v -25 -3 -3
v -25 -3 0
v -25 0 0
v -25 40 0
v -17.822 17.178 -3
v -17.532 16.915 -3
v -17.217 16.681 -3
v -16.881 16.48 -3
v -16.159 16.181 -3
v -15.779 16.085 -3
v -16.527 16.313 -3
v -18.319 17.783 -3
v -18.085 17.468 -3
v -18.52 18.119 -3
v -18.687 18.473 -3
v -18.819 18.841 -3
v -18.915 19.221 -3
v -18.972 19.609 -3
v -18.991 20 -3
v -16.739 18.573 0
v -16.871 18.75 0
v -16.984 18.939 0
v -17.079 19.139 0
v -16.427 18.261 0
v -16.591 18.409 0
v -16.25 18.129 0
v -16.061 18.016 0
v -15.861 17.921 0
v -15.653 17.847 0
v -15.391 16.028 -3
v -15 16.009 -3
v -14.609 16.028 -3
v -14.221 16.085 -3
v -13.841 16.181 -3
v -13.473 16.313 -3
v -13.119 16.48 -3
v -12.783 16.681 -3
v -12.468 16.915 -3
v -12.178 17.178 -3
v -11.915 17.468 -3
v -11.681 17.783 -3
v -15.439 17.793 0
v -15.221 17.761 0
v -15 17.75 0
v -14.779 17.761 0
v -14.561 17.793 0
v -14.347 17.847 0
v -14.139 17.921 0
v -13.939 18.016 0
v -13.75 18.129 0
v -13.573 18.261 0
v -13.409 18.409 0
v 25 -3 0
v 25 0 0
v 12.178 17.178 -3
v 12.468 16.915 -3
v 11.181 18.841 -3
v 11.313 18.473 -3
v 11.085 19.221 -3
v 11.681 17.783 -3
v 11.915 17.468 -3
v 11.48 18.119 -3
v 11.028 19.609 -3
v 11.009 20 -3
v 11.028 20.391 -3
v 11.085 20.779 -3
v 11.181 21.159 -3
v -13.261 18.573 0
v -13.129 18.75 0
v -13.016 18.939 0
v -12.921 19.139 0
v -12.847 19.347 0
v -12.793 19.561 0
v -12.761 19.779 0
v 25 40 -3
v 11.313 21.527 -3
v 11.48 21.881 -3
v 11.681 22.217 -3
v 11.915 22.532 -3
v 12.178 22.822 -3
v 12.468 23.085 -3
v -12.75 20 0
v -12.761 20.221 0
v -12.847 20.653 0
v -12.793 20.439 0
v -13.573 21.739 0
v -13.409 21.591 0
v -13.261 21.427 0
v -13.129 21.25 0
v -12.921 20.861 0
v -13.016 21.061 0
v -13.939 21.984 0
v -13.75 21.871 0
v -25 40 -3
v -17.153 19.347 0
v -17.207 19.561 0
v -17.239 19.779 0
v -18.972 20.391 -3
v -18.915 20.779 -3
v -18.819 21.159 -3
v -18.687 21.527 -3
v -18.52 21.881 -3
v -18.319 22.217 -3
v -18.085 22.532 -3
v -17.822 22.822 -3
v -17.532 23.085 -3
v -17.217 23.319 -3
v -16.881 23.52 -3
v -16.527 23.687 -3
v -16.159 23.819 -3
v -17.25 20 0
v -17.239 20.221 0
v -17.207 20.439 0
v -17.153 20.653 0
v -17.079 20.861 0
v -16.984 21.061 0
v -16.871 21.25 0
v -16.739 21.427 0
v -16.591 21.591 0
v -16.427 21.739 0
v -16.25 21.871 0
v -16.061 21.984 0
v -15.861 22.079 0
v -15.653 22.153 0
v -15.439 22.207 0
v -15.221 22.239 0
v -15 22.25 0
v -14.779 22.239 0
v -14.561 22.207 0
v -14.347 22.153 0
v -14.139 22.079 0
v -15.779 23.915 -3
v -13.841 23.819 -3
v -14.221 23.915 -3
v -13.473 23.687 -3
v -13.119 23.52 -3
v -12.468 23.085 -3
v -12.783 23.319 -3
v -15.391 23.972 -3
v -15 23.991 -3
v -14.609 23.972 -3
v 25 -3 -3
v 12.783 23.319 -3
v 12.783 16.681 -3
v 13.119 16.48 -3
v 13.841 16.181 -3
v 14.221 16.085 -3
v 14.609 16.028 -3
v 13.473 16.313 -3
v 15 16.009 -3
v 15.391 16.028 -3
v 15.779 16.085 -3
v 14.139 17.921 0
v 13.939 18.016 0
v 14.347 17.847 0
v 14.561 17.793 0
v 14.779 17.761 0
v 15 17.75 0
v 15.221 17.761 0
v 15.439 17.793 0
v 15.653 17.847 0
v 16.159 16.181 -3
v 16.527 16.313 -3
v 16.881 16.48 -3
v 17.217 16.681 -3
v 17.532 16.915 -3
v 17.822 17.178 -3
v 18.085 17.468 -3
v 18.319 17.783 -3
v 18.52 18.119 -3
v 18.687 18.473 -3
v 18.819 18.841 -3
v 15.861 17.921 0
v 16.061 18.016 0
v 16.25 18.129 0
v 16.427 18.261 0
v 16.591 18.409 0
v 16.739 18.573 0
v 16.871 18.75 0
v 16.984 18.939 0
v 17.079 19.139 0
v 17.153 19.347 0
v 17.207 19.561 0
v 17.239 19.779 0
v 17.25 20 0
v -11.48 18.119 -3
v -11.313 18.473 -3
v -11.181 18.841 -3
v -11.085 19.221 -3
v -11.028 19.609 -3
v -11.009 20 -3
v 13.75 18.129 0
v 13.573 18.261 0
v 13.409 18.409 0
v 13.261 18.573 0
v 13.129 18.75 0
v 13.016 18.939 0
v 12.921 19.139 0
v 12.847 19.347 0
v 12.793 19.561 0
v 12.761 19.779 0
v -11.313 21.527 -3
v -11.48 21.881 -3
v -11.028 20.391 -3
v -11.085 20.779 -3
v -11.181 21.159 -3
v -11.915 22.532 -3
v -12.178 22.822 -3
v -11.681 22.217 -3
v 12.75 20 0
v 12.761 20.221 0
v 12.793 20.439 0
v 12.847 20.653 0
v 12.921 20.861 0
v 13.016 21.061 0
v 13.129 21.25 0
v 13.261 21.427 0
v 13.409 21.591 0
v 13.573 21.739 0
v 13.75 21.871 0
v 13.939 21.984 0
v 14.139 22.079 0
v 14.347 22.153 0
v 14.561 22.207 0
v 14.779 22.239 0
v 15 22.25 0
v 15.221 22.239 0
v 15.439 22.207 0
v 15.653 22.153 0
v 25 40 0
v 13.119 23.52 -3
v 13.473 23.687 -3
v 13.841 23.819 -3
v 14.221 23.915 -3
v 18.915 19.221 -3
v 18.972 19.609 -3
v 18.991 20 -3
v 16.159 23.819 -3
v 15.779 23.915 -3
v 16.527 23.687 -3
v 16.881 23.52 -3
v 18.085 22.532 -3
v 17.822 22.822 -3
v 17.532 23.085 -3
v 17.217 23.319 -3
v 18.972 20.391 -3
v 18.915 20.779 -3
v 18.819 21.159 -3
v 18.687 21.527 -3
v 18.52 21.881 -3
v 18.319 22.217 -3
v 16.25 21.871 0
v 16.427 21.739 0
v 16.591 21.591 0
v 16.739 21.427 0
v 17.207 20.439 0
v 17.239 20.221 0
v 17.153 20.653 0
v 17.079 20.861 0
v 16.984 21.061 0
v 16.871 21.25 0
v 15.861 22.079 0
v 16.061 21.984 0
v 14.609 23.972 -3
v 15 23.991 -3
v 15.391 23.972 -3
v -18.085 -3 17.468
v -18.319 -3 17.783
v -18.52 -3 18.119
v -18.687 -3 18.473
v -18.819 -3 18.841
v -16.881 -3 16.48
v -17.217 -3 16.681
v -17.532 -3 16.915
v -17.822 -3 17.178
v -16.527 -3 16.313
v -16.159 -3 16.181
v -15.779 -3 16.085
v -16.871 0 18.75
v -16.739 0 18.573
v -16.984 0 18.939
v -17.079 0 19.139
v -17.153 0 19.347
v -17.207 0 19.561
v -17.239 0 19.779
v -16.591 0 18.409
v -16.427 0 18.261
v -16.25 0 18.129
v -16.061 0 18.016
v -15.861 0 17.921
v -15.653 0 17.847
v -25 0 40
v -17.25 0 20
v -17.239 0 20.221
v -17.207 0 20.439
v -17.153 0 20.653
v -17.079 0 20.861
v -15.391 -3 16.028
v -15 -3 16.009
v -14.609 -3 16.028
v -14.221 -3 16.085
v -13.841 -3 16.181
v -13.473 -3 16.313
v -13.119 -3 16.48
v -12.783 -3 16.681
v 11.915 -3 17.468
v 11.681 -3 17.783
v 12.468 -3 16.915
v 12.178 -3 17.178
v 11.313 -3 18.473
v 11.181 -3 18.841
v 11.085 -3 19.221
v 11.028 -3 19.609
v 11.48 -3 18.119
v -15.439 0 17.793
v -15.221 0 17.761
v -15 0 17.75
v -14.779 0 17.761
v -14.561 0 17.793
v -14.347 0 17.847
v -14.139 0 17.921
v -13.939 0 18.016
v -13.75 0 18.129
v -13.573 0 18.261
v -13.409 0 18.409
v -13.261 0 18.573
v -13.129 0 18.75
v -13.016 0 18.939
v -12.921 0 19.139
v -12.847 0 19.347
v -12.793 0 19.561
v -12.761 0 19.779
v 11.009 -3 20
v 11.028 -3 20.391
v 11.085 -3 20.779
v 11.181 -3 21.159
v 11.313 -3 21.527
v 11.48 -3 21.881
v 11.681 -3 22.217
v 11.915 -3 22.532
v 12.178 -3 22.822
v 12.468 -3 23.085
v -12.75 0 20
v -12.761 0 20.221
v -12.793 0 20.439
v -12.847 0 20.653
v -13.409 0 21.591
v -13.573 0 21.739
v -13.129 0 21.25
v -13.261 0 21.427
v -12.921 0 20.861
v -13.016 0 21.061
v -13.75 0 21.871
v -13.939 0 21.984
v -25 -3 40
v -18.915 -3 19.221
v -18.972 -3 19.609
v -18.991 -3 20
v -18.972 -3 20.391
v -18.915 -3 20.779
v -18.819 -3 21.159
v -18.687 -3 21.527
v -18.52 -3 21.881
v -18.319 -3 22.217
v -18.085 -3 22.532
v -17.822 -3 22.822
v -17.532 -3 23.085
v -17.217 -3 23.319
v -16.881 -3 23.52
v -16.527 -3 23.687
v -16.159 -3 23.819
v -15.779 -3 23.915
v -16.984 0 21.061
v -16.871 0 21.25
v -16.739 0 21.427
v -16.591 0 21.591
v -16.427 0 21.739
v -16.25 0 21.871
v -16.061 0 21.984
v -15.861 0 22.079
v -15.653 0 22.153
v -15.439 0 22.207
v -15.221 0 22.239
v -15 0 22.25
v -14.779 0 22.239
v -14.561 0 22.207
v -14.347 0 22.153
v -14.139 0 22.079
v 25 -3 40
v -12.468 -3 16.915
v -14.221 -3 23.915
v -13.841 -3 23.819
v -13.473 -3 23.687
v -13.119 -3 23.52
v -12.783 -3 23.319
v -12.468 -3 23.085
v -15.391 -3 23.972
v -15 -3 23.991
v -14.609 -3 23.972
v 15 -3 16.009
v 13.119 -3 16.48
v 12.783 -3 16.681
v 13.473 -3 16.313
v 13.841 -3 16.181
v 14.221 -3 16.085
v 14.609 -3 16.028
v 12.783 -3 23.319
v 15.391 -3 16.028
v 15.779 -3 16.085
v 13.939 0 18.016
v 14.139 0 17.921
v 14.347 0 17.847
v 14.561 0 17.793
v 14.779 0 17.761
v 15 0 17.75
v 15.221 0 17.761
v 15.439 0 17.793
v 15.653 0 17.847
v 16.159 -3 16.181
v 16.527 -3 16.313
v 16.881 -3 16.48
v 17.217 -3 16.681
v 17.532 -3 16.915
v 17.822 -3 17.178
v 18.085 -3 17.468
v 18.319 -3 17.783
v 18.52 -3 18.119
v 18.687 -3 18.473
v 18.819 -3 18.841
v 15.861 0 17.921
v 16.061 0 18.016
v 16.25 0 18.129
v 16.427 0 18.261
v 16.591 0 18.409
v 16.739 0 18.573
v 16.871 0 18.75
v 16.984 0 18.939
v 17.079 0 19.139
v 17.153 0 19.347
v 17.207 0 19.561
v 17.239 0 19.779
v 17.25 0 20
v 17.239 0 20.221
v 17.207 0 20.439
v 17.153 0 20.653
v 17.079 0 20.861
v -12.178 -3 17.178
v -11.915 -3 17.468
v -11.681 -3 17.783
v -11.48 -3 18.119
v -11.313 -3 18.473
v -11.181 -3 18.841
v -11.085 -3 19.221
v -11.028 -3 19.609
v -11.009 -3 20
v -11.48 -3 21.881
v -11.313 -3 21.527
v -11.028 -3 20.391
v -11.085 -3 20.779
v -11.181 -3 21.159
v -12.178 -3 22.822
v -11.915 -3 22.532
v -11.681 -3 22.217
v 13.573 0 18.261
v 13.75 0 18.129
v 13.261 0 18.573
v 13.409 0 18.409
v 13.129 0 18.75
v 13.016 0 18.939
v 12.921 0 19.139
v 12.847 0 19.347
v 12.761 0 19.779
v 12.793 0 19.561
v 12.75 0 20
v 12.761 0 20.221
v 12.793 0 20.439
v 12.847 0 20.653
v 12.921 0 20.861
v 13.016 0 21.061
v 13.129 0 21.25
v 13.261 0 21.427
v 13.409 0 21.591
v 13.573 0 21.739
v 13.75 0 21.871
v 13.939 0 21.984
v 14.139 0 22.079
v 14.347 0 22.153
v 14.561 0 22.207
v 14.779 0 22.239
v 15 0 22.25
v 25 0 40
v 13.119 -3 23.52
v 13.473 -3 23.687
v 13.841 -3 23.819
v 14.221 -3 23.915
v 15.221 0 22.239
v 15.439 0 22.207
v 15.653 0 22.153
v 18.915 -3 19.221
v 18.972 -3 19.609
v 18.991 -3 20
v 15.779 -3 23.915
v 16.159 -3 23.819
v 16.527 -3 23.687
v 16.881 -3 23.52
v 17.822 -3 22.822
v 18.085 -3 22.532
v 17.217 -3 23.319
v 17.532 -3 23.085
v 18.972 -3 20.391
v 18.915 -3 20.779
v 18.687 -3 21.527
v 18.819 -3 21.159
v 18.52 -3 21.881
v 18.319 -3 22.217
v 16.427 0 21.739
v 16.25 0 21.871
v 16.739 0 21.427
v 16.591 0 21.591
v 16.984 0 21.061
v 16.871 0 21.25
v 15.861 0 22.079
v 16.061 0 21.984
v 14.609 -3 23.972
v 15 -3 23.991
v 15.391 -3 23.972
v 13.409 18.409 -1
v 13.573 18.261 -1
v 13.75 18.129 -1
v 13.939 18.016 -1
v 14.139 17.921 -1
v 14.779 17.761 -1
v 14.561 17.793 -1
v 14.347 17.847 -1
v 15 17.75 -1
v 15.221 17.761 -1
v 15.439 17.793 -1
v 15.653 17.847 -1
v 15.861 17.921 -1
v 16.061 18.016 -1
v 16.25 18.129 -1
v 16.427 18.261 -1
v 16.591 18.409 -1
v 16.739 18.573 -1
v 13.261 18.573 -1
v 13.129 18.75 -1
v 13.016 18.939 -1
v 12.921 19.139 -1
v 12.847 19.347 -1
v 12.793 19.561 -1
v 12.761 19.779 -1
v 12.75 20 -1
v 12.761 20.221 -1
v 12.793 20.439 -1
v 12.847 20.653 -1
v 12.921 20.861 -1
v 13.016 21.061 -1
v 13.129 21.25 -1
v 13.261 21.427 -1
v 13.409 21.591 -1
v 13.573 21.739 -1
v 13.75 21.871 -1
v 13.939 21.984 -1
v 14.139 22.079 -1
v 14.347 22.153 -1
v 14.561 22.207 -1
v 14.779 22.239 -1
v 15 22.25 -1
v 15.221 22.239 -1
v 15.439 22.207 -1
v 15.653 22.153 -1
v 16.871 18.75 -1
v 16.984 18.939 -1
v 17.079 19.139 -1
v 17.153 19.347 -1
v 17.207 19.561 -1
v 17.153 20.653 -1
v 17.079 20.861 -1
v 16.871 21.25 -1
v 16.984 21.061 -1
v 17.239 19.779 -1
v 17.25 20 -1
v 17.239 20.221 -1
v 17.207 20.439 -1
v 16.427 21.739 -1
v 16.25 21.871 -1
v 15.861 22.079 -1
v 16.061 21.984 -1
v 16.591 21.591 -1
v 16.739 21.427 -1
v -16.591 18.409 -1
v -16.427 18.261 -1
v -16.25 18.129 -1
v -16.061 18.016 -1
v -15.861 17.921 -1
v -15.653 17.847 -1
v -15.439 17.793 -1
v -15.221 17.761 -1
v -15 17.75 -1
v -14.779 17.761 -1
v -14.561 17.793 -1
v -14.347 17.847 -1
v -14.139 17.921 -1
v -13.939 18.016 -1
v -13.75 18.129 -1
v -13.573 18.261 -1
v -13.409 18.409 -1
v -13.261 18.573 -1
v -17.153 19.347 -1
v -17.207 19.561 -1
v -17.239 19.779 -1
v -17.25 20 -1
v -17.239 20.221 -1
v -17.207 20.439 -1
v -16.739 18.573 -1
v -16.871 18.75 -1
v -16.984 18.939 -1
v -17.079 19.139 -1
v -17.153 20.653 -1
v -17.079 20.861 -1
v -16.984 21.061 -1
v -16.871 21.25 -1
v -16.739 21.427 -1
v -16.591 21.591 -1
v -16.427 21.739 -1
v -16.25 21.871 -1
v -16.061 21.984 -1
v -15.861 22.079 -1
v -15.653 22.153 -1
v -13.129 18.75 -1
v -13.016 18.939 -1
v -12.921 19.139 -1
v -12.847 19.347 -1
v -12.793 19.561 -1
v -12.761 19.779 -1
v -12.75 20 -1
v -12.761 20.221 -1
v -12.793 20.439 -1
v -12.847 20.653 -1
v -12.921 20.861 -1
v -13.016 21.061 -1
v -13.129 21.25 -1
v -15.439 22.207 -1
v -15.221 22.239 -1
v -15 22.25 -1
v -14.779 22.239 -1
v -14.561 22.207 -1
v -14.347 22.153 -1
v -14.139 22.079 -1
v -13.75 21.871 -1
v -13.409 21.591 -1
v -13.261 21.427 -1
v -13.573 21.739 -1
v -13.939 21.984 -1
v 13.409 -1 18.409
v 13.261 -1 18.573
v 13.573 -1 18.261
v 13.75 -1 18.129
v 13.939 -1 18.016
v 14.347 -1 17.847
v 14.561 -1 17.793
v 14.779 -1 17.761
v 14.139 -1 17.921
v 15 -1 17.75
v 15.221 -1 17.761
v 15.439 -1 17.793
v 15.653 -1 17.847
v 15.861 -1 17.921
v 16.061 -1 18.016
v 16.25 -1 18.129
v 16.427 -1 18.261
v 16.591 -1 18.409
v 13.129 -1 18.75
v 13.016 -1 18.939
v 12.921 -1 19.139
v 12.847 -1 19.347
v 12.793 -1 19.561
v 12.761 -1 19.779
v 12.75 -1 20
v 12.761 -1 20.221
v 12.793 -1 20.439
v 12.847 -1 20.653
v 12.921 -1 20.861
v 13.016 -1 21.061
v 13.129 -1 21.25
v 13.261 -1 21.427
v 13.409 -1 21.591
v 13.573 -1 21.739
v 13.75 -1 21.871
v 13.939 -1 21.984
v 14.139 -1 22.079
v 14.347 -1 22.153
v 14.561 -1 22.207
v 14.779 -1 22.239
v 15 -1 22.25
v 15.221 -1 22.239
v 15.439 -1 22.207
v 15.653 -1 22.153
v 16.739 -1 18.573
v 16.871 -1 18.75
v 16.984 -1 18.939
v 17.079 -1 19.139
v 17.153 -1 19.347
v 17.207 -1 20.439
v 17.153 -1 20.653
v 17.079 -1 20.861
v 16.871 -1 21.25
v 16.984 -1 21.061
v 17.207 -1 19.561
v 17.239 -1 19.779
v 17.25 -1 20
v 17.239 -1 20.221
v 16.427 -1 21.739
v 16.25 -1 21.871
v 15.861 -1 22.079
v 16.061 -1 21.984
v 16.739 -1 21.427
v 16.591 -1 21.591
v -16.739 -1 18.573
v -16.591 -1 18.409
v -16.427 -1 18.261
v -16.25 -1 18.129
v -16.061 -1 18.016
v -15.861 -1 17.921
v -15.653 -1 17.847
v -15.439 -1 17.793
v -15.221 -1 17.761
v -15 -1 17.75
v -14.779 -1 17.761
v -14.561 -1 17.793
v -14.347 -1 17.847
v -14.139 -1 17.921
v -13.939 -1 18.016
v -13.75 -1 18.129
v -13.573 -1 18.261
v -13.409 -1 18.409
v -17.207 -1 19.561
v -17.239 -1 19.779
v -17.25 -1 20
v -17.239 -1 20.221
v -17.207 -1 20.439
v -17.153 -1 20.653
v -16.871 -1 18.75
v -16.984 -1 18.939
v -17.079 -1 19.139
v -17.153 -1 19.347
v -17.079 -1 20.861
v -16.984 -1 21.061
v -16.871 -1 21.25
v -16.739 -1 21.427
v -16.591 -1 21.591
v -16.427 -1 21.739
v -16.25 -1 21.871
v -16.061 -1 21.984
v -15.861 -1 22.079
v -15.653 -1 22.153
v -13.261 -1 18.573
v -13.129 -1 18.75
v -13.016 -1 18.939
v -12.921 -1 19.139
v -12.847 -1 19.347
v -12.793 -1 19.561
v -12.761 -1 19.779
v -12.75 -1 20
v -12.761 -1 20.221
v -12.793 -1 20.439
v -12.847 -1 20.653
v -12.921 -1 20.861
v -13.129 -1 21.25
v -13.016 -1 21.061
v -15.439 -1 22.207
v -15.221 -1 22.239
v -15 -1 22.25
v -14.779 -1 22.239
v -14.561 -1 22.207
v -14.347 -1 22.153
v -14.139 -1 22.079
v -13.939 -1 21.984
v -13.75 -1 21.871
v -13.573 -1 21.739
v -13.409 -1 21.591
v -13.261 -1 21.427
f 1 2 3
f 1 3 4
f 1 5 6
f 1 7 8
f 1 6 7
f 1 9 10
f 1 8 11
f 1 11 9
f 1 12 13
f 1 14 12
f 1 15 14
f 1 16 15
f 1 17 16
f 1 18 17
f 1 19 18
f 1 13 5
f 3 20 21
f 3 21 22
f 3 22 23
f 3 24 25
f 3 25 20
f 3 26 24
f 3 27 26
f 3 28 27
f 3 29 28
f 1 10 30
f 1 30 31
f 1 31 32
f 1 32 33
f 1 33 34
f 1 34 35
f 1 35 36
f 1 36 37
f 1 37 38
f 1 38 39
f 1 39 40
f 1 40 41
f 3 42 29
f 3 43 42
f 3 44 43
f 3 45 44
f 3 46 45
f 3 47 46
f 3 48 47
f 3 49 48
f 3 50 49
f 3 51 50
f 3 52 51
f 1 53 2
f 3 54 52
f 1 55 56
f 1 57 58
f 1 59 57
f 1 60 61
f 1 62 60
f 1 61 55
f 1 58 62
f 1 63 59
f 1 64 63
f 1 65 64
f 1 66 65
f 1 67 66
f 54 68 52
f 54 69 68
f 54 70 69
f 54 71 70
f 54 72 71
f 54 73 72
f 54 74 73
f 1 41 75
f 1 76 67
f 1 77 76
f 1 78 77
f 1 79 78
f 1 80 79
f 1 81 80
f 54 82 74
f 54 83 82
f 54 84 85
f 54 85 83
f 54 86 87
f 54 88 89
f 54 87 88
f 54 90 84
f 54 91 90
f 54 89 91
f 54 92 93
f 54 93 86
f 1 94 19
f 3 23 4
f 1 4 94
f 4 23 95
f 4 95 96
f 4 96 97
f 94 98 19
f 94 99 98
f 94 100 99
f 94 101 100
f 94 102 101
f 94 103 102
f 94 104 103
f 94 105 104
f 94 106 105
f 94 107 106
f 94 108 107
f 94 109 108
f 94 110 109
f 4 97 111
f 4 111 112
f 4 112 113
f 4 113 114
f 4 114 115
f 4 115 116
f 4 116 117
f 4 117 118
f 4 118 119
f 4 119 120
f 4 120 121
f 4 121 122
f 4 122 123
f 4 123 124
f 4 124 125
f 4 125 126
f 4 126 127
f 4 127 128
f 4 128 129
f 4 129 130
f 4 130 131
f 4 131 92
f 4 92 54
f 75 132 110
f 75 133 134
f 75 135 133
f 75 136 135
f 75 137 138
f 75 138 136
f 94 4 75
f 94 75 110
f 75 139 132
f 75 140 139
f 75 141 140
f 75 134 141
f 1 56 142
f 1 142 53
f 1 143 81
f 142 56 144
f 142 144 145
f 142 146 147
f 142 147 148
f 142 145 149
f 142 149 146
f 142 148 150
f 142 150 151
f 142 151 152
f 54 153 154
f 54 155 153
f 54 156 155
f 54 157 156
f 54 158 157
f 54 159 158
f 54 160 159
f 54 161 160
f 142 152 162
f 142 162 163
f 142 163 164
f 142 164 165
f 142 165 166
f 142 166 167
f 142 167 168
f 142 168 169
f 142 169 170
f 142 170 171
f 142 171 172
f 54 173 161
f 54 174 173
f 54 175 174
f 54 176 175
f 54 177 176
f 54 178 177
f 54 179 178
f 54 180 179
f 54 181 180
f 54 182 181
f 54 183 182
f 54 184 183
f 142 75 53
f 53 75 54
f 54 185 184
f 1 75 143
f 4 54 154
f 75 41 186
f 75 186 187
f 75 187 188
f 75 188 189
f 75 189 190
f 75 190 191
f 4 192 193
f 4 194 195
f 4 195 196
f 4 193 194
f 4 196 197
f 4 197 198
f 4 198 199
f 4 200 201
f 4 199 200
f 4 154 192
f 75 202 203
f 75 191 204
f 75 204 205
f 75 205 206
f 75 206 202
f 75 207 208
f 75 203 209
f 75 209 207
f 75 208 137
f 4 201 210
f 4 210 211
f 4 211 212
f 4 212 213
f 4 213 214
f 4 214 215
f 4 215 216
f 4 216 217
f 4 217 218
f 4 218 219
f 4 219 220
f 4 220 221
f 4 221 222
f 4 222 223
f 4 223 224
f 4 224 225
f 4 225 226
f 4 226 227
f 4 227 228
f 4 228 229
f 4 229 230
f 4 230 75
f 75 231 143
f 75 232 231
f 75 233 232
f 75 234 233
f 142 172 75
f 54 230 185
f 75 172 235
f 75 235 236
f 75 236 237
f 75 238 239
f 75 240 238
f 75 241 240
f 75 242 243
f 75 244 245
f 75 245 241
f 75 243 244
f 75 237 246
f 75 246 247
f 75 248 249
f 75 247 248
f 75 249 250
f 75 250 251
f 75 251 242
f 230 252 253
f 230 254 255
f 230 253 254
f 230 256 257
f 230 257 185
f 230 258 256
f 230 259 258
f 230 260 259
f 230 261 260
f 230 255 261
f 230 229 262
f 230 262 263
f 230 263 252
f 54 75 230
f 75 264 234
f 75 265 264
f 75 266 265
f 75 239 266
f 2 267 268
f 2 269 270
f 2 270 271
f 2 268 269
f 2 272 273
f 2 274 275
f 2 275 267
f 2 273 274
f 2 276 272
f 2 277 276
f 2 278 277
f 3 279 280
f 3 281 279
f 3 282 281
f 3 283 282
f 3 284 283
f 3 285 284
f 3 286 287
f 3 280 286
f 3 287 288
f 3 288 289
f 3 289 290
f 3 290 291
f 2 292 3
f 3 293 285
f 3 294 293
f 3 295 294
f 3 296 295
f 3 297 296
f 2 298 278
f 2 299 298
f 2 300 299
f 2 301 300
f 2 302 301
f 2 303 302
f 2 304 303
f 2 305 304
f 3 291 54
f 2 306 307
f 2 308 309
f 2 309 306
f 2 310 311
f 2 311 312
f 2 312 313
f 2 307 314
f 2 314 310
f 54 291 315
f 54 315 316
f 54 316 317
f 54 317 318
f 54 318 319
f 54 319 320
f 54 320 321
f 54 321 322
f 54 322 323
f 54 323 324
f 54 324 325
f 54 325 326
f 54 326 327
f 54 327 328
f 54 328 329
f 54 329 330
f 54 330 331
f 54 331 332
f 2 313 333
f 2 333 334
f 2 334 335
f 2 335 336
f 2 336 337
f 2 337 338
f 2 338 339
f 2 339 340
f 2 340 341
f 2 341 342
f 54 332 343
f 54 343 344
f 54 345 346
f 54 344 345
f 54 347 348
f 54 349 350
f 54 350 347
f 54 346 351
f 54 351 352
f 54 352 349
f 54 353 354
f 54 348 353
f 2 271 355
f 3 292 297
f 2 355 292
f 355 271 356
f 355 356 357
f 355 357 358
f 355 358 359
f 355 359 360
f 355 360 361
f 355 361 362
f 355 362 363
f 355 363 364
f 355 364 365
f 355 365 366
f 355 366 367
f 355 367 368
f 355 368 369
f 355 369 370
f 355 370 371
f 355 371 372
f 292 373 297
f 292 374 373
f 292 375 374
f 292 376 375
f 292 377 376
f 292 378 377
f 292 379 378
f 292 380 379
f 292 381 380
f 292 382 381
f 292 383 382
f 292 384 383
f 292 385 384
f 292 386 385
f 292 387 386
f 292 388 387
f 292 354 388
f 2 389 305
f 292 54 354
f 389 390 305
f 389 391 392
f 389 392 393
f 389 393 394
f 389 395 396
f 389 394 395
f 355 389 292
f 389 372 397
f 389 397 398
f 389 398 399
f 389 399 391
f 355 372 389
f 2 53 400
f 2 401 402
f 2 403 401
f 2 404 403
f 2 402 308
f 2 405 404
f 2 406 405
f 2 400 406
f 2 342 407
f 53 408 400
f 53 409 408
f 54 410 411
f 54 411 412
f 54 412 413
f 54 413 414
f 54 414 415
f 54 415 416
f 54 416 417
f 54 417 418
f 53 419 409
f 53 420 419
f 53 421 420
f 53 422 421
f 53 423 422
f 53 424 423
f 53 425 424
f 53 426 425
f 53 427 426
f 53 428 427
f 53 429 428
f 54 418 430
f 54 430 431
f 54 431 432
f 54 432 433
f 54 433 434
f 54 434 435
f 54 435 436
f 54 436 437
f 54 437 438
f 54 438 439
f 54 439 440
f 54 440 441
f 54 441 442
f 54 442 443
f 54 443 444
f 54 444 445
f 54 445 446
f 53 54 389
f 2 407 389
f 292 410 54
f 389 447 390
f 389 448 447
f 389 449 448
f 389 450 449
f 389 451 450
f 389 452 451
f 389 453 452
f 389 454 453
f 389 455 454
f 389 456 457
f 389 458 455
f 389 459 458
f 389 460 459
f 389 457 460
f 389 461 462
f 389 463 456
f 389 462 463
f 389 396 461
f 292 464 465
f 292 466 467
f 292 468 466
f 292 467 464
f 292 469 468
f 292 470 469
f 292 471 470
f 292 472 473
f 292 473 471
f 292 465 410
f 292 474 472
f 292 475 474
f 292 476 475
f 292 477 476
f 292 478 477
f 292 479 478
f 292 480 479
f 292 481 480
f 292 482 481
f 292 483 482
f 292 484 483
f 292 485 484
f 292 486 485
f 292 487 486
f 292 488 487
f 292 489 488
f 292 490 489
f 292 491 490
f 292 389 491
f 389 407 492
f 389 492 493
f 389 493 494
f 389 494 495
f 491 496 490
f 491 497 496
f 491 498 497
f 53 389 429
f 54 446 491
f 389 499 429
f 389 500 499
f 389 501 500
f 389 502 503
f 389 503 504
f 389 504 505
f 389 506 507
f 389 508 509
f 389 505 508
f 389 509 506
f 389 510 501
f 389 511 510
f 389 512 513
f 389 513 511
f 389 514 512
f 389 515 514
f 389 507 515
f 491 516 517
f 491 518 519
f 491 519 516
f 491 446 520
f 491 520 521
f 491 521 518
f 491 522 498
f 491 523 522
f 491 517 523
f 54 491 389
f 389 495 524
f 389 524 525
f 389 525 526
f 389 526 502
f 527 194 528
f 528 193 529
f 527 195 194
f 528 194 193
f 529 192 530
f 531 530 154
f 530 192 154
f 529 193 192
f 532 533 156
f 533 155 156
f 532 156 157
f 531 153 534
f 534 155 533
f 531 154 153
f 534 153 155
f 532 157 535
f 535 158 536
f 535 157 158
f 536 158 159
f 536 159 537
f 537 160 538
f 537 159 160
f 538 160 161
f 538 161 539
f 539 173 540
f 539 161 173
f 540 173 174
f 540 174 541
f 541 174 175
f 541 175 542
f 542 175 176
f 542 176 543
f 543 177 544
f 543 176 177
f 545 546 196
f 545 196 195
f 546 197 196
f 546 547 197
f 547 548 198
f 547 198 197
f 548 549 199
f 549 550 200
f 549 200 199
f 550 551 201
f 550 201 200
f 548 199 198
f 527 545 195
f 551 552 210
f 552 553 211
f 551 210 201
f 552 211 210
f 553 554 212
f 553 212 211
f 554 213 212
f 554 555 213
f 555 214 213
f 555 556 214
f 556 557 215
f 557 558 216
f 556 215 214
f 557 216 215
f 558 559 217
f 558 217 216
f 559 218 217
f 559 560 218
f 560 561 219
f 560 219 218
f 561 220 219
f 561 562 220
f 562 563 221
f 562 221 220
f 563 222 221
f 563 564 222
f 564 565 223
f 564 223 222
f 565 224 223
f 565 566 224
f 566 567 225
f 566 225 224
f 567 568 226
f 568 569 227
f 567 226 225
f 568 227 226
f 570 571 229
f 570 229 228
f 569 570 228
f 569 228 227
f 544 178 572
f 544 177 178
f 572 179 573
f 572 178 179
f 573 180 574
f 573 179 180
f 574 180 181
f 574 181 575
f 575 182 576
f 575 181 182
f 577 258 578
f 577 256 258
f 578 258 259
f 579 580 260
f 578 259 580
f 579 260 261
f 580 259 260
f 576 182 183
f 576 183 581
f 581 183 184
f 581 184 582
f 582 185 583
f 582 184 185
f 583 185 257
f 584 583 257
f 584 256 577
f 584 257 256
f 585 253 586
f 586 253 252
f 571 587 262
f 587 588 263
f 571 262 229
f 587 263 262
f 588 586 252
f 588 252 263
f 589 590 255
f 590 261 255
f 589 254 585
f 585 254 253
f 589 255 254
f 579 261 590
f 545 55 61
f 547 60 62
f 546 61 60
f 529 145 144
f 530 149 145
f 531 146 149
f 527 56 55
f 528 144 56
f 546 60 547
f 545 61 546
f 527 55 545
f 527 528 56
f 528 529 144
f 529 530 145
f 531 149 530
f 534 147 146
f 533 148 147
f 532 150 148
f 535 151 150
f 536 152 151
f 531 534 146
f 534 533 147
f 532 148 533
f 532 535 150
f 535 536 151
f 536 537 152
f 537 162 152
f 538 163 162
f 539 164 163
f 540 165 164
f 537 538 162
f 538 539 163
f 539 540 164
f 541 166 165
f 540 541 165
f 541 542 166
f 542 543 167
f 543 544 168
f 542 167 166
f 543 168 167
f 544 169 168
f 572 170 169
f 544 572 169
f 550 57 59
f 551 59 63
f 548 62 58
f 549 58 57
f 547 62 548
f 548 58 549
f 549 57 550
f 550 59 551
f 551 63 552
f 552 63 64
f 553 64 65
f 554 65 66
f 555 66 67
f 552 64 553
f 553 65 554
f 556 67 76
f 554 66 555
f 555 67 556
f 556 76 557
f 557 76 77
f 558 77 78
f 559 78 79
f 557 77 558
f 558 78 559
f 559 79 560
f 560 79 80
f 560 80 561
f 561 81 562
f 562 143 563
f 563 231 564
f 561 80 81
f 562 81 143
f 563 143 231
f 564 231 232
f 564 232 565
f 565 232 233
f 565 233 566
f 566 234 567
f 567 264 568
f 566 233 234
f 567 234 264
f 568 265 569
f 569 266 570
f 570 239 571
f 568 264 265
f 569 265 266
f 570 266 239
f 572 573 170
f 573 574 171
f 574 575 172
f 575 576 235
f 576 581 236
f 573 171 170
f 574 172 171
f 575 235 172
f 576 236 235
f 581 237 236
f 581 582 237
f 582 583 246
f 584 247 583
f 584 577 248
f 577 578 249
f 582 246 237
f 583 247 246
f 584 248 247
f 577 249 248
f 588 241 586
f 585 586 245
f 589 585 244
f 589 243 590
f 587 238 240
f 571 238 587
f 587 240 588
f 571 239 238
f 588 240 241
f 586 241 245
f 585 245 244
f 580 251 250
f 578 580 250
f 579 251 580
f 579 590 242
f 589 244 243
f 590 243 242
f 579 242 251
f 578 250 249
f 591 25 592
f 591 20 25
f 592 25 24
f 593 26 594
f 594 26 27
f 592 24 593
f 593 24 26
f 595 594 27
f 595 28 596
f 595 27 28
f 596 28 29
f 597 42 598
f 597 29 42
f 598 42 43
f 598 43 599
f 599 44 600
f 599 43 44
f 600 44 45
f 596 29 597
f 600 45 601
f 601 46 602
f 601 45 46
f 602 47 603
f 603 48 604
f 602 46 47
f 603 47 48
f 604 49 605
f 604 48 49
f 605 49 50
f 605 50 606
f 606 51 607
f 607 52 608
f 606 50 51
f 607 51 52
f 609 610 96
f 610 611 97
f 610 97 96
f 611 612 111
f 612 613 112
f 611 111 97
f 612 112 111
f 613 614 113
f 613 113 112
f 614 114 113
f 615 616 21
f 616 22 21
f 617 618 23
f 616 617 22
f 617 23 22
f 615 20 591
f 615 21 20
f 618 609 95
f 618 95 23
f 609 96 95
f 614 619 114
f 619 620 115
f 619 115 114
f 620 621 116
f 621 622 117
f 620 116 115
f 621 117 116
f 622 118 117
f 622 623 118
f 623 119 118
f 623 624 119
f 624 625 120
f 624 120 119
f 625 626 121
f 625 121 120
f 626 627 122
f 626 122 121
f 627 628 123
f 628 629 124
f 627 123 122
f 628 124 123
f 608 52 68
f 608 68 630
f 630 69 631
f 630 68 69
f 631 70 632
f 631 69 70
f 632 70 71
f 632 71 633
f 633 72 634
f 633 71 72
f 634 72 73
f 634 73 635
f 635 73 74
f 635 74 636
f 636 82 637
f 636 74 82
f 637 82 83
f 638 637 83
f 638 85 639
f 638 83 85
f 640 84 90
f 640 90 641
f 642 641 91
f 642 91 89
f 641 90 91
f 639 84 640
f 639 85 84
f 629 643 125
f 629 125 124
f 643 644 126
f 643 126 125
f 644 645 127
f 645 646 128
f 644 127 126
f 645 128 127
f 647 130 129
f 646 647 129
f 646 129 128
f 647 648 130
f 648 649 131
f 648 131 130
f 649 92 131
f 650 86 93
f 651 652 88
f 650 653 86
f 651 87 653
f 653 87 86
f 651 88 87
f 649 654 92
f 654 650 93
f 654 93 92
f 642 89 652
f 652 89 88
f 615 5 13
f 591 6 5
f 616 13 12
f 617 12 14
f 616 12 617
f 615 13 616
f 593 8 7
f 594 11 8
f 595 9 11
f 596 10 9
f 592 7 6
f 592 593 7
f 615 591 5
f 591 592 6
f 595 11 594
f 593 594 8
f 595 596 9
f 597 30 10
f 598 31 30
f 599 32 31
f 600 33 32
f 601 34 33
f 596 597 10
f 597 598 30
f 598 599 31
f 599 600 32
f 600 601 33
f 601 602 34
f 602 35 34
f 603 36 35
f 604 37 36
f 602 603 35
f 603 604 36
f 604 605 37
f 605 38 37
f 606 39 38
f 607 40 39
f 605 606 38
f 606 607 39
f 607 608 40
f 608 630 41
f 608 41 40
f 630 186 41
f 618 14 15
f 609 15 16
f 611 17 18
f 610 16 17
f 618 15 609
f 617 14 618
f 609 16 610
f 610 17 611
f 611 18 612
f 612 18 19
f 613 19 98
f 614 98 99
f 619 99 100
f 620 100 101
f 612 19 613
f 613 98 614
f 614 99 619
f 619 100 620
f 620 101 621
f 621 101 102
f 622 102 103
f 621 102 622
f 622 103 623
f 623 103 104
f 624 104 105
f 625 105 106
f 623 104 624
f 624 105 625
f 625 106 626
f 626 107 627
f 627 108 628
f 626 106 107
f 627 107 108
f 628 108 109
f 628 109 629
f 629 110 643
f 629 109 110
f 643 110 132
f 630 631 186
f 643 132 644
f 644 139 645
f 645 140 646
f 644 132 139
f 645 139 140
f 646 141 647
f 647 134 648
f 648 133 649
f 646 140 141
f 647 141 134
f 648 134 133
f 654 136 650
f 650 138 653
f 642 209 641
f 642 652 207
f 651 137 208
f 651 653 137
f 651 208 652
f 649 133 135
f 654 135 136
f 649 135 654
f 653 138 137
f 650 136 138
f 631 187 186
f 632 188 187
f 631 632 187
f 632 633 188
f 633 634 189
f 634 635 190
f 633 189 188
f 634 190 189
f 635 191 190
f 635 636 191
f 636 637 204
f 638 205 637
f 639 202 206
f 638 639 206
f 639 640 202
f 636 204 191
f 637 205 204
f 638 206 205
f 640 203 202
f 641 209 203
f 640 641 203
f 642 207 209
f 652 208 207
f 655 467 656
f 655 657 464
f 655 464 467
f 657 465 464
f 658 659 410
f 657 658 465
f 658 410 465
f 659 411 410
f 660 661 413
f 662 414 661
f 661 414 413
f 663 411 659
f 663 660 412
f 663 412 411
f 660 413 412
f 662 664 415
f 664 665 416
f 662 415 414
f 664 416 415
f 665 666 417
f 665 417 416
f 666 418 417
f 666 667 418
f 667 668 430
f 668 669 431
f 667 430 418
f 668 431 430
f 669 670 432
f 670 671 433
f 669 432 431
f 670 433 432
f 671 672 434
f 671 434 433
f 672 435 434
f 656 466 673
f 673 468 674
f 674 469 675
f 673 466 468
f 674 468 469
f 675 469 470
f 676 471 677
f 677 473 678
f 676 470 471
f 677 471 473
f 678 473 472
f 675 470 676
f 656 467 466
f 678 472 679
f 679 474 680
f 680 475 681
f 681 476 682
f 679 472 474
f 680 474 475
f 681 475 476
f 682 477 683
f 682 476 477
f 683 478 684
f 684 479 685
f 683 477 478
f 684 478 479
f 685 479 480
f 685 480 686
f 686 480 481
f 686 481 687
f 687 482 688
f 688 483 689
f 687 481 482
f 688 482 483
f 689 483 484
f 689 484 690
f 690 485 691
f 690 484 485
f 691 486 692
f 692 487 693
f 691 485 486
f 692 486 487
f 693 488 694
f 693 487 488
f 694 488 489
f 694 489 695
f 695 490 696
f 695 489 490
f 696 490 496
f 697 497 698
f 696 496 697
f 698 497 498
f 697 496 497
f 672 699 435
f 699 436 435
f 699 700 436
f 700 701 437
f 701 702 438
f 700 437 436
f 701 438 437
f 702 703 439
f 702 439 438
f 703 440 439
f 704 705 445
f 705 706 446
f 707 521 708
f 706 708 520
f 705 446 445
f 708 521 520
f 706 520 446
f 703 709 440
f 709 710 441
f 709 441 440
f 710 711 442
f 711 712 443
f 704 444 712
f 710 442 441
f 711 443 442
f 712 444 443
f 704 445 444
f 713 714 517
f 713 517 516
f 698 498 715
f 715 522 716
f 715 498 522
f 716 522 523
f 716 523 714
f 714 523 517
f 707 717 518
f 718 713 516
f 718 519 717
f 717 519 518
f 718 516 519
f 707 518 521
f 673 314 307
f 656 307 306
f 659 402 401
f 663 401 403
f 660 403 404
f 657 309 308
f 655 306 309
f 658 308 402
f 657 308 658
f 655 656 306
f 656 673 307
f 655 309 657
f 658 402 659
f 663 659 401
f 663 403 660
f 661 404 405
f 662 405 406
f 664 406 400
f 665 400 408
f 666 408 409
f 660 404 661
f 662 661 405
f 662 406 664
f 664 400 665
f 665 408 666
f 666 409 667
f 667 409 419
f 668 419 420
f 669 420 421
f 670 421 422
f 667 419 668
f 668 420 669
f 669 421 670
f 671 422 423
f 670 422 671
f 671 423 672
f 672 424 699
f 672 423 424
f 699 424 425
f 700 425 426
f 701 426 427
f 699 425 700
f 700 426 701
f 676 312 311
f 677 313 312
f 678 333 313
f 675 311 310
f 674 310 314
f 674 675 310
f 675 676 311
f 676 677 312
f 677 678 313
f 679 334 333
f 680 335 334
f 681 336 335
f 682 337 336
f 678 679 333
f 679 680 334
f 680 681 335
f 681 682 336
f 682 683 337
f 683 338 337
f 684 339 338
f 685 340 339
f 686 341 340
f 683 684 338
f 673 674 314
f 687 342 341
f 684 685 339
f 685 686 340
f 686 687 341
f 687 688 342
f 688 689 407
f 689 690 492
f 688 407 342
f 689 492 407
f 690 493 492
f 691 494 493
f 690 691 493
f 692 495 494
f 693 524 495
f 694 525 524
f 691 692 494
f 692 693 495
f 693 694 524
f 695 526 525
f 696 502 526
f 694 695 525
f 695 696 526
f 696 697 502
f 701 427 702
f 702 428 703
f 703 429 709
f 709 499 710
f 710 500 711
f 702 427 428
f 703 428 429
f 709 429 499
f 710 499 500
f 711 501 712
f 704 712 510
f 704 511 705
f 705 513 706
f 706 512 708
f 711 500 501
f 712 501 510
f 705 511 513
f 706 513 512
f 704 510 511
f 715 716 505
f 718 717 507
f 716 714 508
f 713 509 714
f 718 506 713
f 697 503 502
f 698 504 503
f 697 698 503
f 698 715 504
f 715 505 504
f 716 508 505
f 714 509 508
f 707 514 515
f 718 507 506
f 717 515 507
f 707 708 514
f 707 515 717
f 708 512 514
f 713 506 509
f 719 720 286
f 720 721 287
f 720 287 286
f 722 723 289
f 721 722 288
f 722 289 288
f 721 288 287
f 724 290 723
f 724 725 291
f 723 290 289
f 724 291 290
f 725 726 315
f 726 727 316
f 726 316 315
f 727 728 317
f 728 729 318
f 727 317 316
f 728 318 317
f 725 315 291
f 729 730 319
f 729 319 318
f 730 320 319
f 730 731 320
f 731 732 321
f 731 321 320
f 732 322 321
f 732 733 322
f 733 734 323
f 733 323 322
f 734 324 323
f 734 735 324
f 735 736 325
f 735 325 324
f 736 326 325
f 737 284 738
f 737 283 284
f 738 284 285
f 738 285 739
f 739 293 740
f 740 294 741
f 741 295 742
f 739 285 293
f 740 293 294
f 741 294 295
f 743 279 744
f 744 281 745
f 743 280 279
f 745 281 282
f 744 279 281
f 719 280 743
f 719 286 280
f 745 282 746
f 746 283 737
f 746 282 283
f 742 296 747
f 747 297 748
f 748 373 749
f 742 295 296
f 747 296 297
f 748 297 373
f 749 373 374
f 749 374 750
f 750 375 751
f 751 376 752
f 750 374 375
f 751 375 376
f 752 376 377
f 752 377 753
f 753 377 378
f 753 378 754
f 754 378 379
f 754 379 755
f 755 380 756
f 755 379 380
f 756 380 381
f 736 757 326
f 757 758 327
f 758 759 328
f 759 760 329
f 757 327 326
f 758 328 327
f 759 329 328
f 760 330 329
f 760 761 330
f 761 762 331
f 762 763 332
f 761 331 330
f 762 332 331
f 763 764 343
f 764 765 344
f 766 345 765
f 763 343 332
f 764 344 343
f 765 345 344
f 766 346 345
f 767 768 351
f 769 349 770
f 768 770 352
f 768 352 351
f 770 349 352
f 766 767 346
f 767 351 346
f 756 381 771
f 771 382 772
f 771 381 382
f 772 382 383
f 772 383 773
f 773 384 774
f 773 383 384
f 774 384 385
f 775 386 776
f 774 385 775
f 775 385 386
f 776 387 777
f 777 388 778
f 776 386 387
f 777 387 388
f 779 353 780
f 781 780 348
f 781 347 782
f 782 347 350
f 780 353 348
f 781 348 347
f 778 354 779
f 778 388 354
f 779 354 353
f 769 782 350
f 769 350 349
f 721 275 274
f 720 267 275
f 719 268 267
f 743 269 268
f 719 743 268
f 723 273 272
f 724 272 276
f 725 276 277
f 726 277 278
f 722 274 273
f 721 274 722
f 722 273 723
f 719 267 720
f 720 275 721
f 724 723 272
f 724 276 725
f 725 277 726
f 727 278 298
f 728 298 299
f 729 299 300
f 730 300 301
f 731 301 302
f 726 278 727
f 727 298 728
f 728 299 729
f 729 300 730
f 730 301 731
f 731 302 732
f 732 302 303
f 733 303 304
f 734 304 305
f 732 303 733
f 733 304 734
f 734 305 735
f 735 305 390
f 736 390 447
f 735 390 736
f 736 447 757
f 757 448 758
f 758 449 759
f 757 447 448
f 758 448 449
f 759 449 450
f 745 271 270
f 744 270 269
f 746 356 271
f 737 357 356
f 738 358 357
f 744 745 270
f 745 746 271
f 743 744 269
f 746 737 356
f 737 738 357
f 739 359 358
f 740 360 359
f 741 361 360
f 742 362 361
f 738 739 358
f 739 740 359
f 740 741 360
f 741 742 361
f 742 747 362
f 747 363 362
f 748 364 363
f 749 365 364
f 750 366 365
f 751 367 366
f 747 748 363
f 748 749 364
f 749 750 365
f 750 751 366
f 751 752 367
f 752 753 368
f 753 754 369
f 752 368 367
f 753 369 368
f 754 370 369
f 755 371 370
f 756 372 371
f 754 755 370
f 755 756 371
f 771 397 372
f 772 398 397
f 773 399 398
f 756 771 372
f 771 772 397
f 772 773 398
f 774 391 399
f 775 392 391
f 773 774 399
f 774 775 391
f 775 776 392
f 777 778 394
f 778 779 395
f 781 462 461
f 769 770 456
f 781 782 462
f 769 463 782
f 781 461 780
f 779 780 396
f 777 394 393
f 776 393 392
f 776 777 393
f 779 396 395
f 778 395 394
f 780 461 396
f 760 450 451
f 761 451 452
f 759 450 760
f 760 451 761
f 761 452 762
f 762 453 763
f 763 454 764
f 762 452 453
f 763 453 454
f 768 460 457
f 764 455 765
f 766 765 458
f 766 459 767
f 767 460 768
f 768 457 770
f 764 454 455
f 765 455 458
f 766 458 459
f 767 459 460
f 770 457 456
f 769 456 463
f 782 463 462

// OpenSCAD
// ===================================================
// L字金具 (L-bracket) パラメトリックモデル
// ===================================================

// ----- 基本寸法 -----
flange_width = 50;    // 幅 (X方向、共通)
h_depth      = 40;    // 水平面 奥行き (Y方向)
v_height     = 40;    // 垂直面 高さ (Z方向)
thickness    = 3;     // 板厚 (共通)

// ----- 皿穴(M4用)寸法 -----
hole_dia    = 4.5;    // 貫通穴 径
csink_dia   = 8;      // 皿座面 径
csink_depth = 2;      // 皿座面 深さ
edge_offset = 10;     // 幅方向の縁からの距離

hole_x = flange_width/2 - edge_offset; // 左右対称の穴X位置 (±15)

eps = 0.5;  // 貫通穴を確実に貫通させるための余裕

$fn = 64;

// ----- L字本体（内側コーナーが原点） -----
module bracket_base() {
    // 水平面フランジ（外側コーナーを埋めるようY方向に板厚分延長）
    translate([-flange_width/2, -thickness, -thickness])
        cube([flange_width, h_depth + thickness, thickness]);

    // 垂直面フランジ
    translate([-flange_width/2, -thickness, 0])
        cube([flange_width, thickness, v_height]);
}

// 水平面用 皿穴（Z方向に貫通、外側=下面 Z=-thickness に皿座面）
module csink_hole_horizontal(x, y) {
    // 貫通穴
    translate([x, y, -thickness - eps])
        cylinder(h = thickness + 2*eps, r = hole_dia/2);
    // 皿座面（外側が大径、内側に向かって縮径）
    translate([x, y, -thickness - 0.01])
        cylinder(h = csink_depth + 0.01, r1 = csink_dia/2, r2 = hole_dia/2);
}

// 垂直面用 皿穴（Y方向に貫通、外側=背面 Y=-thickness に皿座面）
module csink_hole_vertical(x, z) {
    // 貫通穴
    translate([x, -thickness - eps, z])
        rotate([-90, 0, 0])
            cylinder(h = thickness + 2*eps, r = hole_dia/2);
    // 皿座面（外側が大径、内側に向かって縮径）
    translate([x, -thickness - 0.01, z])
        rotate([-90, 0, 0])
            cylinder(h = csink_depth + 0.01, r1 = csink_dia/2, r2 = hole_dia/2);
}

// ----- 完成モデル -----
module l_bracket() {
    difference() {
        bracket_base();

        // 水平面の皿穴 x2（奥行き中央、幅方向に左右対称）
        csink_hole_horizontal( hole_x, h_depth/2);
        csink_hole_horizontal(-hole_x, h_depth/2);

        // 垂直面の皿穴 x2（高さ中央、幅方向に左右対称）
        csink_hole_vertical( hole_x, v_height/2);
        csink_hole_vertical(-hole_x, v_height/2);
    }
}

l_bracket();
